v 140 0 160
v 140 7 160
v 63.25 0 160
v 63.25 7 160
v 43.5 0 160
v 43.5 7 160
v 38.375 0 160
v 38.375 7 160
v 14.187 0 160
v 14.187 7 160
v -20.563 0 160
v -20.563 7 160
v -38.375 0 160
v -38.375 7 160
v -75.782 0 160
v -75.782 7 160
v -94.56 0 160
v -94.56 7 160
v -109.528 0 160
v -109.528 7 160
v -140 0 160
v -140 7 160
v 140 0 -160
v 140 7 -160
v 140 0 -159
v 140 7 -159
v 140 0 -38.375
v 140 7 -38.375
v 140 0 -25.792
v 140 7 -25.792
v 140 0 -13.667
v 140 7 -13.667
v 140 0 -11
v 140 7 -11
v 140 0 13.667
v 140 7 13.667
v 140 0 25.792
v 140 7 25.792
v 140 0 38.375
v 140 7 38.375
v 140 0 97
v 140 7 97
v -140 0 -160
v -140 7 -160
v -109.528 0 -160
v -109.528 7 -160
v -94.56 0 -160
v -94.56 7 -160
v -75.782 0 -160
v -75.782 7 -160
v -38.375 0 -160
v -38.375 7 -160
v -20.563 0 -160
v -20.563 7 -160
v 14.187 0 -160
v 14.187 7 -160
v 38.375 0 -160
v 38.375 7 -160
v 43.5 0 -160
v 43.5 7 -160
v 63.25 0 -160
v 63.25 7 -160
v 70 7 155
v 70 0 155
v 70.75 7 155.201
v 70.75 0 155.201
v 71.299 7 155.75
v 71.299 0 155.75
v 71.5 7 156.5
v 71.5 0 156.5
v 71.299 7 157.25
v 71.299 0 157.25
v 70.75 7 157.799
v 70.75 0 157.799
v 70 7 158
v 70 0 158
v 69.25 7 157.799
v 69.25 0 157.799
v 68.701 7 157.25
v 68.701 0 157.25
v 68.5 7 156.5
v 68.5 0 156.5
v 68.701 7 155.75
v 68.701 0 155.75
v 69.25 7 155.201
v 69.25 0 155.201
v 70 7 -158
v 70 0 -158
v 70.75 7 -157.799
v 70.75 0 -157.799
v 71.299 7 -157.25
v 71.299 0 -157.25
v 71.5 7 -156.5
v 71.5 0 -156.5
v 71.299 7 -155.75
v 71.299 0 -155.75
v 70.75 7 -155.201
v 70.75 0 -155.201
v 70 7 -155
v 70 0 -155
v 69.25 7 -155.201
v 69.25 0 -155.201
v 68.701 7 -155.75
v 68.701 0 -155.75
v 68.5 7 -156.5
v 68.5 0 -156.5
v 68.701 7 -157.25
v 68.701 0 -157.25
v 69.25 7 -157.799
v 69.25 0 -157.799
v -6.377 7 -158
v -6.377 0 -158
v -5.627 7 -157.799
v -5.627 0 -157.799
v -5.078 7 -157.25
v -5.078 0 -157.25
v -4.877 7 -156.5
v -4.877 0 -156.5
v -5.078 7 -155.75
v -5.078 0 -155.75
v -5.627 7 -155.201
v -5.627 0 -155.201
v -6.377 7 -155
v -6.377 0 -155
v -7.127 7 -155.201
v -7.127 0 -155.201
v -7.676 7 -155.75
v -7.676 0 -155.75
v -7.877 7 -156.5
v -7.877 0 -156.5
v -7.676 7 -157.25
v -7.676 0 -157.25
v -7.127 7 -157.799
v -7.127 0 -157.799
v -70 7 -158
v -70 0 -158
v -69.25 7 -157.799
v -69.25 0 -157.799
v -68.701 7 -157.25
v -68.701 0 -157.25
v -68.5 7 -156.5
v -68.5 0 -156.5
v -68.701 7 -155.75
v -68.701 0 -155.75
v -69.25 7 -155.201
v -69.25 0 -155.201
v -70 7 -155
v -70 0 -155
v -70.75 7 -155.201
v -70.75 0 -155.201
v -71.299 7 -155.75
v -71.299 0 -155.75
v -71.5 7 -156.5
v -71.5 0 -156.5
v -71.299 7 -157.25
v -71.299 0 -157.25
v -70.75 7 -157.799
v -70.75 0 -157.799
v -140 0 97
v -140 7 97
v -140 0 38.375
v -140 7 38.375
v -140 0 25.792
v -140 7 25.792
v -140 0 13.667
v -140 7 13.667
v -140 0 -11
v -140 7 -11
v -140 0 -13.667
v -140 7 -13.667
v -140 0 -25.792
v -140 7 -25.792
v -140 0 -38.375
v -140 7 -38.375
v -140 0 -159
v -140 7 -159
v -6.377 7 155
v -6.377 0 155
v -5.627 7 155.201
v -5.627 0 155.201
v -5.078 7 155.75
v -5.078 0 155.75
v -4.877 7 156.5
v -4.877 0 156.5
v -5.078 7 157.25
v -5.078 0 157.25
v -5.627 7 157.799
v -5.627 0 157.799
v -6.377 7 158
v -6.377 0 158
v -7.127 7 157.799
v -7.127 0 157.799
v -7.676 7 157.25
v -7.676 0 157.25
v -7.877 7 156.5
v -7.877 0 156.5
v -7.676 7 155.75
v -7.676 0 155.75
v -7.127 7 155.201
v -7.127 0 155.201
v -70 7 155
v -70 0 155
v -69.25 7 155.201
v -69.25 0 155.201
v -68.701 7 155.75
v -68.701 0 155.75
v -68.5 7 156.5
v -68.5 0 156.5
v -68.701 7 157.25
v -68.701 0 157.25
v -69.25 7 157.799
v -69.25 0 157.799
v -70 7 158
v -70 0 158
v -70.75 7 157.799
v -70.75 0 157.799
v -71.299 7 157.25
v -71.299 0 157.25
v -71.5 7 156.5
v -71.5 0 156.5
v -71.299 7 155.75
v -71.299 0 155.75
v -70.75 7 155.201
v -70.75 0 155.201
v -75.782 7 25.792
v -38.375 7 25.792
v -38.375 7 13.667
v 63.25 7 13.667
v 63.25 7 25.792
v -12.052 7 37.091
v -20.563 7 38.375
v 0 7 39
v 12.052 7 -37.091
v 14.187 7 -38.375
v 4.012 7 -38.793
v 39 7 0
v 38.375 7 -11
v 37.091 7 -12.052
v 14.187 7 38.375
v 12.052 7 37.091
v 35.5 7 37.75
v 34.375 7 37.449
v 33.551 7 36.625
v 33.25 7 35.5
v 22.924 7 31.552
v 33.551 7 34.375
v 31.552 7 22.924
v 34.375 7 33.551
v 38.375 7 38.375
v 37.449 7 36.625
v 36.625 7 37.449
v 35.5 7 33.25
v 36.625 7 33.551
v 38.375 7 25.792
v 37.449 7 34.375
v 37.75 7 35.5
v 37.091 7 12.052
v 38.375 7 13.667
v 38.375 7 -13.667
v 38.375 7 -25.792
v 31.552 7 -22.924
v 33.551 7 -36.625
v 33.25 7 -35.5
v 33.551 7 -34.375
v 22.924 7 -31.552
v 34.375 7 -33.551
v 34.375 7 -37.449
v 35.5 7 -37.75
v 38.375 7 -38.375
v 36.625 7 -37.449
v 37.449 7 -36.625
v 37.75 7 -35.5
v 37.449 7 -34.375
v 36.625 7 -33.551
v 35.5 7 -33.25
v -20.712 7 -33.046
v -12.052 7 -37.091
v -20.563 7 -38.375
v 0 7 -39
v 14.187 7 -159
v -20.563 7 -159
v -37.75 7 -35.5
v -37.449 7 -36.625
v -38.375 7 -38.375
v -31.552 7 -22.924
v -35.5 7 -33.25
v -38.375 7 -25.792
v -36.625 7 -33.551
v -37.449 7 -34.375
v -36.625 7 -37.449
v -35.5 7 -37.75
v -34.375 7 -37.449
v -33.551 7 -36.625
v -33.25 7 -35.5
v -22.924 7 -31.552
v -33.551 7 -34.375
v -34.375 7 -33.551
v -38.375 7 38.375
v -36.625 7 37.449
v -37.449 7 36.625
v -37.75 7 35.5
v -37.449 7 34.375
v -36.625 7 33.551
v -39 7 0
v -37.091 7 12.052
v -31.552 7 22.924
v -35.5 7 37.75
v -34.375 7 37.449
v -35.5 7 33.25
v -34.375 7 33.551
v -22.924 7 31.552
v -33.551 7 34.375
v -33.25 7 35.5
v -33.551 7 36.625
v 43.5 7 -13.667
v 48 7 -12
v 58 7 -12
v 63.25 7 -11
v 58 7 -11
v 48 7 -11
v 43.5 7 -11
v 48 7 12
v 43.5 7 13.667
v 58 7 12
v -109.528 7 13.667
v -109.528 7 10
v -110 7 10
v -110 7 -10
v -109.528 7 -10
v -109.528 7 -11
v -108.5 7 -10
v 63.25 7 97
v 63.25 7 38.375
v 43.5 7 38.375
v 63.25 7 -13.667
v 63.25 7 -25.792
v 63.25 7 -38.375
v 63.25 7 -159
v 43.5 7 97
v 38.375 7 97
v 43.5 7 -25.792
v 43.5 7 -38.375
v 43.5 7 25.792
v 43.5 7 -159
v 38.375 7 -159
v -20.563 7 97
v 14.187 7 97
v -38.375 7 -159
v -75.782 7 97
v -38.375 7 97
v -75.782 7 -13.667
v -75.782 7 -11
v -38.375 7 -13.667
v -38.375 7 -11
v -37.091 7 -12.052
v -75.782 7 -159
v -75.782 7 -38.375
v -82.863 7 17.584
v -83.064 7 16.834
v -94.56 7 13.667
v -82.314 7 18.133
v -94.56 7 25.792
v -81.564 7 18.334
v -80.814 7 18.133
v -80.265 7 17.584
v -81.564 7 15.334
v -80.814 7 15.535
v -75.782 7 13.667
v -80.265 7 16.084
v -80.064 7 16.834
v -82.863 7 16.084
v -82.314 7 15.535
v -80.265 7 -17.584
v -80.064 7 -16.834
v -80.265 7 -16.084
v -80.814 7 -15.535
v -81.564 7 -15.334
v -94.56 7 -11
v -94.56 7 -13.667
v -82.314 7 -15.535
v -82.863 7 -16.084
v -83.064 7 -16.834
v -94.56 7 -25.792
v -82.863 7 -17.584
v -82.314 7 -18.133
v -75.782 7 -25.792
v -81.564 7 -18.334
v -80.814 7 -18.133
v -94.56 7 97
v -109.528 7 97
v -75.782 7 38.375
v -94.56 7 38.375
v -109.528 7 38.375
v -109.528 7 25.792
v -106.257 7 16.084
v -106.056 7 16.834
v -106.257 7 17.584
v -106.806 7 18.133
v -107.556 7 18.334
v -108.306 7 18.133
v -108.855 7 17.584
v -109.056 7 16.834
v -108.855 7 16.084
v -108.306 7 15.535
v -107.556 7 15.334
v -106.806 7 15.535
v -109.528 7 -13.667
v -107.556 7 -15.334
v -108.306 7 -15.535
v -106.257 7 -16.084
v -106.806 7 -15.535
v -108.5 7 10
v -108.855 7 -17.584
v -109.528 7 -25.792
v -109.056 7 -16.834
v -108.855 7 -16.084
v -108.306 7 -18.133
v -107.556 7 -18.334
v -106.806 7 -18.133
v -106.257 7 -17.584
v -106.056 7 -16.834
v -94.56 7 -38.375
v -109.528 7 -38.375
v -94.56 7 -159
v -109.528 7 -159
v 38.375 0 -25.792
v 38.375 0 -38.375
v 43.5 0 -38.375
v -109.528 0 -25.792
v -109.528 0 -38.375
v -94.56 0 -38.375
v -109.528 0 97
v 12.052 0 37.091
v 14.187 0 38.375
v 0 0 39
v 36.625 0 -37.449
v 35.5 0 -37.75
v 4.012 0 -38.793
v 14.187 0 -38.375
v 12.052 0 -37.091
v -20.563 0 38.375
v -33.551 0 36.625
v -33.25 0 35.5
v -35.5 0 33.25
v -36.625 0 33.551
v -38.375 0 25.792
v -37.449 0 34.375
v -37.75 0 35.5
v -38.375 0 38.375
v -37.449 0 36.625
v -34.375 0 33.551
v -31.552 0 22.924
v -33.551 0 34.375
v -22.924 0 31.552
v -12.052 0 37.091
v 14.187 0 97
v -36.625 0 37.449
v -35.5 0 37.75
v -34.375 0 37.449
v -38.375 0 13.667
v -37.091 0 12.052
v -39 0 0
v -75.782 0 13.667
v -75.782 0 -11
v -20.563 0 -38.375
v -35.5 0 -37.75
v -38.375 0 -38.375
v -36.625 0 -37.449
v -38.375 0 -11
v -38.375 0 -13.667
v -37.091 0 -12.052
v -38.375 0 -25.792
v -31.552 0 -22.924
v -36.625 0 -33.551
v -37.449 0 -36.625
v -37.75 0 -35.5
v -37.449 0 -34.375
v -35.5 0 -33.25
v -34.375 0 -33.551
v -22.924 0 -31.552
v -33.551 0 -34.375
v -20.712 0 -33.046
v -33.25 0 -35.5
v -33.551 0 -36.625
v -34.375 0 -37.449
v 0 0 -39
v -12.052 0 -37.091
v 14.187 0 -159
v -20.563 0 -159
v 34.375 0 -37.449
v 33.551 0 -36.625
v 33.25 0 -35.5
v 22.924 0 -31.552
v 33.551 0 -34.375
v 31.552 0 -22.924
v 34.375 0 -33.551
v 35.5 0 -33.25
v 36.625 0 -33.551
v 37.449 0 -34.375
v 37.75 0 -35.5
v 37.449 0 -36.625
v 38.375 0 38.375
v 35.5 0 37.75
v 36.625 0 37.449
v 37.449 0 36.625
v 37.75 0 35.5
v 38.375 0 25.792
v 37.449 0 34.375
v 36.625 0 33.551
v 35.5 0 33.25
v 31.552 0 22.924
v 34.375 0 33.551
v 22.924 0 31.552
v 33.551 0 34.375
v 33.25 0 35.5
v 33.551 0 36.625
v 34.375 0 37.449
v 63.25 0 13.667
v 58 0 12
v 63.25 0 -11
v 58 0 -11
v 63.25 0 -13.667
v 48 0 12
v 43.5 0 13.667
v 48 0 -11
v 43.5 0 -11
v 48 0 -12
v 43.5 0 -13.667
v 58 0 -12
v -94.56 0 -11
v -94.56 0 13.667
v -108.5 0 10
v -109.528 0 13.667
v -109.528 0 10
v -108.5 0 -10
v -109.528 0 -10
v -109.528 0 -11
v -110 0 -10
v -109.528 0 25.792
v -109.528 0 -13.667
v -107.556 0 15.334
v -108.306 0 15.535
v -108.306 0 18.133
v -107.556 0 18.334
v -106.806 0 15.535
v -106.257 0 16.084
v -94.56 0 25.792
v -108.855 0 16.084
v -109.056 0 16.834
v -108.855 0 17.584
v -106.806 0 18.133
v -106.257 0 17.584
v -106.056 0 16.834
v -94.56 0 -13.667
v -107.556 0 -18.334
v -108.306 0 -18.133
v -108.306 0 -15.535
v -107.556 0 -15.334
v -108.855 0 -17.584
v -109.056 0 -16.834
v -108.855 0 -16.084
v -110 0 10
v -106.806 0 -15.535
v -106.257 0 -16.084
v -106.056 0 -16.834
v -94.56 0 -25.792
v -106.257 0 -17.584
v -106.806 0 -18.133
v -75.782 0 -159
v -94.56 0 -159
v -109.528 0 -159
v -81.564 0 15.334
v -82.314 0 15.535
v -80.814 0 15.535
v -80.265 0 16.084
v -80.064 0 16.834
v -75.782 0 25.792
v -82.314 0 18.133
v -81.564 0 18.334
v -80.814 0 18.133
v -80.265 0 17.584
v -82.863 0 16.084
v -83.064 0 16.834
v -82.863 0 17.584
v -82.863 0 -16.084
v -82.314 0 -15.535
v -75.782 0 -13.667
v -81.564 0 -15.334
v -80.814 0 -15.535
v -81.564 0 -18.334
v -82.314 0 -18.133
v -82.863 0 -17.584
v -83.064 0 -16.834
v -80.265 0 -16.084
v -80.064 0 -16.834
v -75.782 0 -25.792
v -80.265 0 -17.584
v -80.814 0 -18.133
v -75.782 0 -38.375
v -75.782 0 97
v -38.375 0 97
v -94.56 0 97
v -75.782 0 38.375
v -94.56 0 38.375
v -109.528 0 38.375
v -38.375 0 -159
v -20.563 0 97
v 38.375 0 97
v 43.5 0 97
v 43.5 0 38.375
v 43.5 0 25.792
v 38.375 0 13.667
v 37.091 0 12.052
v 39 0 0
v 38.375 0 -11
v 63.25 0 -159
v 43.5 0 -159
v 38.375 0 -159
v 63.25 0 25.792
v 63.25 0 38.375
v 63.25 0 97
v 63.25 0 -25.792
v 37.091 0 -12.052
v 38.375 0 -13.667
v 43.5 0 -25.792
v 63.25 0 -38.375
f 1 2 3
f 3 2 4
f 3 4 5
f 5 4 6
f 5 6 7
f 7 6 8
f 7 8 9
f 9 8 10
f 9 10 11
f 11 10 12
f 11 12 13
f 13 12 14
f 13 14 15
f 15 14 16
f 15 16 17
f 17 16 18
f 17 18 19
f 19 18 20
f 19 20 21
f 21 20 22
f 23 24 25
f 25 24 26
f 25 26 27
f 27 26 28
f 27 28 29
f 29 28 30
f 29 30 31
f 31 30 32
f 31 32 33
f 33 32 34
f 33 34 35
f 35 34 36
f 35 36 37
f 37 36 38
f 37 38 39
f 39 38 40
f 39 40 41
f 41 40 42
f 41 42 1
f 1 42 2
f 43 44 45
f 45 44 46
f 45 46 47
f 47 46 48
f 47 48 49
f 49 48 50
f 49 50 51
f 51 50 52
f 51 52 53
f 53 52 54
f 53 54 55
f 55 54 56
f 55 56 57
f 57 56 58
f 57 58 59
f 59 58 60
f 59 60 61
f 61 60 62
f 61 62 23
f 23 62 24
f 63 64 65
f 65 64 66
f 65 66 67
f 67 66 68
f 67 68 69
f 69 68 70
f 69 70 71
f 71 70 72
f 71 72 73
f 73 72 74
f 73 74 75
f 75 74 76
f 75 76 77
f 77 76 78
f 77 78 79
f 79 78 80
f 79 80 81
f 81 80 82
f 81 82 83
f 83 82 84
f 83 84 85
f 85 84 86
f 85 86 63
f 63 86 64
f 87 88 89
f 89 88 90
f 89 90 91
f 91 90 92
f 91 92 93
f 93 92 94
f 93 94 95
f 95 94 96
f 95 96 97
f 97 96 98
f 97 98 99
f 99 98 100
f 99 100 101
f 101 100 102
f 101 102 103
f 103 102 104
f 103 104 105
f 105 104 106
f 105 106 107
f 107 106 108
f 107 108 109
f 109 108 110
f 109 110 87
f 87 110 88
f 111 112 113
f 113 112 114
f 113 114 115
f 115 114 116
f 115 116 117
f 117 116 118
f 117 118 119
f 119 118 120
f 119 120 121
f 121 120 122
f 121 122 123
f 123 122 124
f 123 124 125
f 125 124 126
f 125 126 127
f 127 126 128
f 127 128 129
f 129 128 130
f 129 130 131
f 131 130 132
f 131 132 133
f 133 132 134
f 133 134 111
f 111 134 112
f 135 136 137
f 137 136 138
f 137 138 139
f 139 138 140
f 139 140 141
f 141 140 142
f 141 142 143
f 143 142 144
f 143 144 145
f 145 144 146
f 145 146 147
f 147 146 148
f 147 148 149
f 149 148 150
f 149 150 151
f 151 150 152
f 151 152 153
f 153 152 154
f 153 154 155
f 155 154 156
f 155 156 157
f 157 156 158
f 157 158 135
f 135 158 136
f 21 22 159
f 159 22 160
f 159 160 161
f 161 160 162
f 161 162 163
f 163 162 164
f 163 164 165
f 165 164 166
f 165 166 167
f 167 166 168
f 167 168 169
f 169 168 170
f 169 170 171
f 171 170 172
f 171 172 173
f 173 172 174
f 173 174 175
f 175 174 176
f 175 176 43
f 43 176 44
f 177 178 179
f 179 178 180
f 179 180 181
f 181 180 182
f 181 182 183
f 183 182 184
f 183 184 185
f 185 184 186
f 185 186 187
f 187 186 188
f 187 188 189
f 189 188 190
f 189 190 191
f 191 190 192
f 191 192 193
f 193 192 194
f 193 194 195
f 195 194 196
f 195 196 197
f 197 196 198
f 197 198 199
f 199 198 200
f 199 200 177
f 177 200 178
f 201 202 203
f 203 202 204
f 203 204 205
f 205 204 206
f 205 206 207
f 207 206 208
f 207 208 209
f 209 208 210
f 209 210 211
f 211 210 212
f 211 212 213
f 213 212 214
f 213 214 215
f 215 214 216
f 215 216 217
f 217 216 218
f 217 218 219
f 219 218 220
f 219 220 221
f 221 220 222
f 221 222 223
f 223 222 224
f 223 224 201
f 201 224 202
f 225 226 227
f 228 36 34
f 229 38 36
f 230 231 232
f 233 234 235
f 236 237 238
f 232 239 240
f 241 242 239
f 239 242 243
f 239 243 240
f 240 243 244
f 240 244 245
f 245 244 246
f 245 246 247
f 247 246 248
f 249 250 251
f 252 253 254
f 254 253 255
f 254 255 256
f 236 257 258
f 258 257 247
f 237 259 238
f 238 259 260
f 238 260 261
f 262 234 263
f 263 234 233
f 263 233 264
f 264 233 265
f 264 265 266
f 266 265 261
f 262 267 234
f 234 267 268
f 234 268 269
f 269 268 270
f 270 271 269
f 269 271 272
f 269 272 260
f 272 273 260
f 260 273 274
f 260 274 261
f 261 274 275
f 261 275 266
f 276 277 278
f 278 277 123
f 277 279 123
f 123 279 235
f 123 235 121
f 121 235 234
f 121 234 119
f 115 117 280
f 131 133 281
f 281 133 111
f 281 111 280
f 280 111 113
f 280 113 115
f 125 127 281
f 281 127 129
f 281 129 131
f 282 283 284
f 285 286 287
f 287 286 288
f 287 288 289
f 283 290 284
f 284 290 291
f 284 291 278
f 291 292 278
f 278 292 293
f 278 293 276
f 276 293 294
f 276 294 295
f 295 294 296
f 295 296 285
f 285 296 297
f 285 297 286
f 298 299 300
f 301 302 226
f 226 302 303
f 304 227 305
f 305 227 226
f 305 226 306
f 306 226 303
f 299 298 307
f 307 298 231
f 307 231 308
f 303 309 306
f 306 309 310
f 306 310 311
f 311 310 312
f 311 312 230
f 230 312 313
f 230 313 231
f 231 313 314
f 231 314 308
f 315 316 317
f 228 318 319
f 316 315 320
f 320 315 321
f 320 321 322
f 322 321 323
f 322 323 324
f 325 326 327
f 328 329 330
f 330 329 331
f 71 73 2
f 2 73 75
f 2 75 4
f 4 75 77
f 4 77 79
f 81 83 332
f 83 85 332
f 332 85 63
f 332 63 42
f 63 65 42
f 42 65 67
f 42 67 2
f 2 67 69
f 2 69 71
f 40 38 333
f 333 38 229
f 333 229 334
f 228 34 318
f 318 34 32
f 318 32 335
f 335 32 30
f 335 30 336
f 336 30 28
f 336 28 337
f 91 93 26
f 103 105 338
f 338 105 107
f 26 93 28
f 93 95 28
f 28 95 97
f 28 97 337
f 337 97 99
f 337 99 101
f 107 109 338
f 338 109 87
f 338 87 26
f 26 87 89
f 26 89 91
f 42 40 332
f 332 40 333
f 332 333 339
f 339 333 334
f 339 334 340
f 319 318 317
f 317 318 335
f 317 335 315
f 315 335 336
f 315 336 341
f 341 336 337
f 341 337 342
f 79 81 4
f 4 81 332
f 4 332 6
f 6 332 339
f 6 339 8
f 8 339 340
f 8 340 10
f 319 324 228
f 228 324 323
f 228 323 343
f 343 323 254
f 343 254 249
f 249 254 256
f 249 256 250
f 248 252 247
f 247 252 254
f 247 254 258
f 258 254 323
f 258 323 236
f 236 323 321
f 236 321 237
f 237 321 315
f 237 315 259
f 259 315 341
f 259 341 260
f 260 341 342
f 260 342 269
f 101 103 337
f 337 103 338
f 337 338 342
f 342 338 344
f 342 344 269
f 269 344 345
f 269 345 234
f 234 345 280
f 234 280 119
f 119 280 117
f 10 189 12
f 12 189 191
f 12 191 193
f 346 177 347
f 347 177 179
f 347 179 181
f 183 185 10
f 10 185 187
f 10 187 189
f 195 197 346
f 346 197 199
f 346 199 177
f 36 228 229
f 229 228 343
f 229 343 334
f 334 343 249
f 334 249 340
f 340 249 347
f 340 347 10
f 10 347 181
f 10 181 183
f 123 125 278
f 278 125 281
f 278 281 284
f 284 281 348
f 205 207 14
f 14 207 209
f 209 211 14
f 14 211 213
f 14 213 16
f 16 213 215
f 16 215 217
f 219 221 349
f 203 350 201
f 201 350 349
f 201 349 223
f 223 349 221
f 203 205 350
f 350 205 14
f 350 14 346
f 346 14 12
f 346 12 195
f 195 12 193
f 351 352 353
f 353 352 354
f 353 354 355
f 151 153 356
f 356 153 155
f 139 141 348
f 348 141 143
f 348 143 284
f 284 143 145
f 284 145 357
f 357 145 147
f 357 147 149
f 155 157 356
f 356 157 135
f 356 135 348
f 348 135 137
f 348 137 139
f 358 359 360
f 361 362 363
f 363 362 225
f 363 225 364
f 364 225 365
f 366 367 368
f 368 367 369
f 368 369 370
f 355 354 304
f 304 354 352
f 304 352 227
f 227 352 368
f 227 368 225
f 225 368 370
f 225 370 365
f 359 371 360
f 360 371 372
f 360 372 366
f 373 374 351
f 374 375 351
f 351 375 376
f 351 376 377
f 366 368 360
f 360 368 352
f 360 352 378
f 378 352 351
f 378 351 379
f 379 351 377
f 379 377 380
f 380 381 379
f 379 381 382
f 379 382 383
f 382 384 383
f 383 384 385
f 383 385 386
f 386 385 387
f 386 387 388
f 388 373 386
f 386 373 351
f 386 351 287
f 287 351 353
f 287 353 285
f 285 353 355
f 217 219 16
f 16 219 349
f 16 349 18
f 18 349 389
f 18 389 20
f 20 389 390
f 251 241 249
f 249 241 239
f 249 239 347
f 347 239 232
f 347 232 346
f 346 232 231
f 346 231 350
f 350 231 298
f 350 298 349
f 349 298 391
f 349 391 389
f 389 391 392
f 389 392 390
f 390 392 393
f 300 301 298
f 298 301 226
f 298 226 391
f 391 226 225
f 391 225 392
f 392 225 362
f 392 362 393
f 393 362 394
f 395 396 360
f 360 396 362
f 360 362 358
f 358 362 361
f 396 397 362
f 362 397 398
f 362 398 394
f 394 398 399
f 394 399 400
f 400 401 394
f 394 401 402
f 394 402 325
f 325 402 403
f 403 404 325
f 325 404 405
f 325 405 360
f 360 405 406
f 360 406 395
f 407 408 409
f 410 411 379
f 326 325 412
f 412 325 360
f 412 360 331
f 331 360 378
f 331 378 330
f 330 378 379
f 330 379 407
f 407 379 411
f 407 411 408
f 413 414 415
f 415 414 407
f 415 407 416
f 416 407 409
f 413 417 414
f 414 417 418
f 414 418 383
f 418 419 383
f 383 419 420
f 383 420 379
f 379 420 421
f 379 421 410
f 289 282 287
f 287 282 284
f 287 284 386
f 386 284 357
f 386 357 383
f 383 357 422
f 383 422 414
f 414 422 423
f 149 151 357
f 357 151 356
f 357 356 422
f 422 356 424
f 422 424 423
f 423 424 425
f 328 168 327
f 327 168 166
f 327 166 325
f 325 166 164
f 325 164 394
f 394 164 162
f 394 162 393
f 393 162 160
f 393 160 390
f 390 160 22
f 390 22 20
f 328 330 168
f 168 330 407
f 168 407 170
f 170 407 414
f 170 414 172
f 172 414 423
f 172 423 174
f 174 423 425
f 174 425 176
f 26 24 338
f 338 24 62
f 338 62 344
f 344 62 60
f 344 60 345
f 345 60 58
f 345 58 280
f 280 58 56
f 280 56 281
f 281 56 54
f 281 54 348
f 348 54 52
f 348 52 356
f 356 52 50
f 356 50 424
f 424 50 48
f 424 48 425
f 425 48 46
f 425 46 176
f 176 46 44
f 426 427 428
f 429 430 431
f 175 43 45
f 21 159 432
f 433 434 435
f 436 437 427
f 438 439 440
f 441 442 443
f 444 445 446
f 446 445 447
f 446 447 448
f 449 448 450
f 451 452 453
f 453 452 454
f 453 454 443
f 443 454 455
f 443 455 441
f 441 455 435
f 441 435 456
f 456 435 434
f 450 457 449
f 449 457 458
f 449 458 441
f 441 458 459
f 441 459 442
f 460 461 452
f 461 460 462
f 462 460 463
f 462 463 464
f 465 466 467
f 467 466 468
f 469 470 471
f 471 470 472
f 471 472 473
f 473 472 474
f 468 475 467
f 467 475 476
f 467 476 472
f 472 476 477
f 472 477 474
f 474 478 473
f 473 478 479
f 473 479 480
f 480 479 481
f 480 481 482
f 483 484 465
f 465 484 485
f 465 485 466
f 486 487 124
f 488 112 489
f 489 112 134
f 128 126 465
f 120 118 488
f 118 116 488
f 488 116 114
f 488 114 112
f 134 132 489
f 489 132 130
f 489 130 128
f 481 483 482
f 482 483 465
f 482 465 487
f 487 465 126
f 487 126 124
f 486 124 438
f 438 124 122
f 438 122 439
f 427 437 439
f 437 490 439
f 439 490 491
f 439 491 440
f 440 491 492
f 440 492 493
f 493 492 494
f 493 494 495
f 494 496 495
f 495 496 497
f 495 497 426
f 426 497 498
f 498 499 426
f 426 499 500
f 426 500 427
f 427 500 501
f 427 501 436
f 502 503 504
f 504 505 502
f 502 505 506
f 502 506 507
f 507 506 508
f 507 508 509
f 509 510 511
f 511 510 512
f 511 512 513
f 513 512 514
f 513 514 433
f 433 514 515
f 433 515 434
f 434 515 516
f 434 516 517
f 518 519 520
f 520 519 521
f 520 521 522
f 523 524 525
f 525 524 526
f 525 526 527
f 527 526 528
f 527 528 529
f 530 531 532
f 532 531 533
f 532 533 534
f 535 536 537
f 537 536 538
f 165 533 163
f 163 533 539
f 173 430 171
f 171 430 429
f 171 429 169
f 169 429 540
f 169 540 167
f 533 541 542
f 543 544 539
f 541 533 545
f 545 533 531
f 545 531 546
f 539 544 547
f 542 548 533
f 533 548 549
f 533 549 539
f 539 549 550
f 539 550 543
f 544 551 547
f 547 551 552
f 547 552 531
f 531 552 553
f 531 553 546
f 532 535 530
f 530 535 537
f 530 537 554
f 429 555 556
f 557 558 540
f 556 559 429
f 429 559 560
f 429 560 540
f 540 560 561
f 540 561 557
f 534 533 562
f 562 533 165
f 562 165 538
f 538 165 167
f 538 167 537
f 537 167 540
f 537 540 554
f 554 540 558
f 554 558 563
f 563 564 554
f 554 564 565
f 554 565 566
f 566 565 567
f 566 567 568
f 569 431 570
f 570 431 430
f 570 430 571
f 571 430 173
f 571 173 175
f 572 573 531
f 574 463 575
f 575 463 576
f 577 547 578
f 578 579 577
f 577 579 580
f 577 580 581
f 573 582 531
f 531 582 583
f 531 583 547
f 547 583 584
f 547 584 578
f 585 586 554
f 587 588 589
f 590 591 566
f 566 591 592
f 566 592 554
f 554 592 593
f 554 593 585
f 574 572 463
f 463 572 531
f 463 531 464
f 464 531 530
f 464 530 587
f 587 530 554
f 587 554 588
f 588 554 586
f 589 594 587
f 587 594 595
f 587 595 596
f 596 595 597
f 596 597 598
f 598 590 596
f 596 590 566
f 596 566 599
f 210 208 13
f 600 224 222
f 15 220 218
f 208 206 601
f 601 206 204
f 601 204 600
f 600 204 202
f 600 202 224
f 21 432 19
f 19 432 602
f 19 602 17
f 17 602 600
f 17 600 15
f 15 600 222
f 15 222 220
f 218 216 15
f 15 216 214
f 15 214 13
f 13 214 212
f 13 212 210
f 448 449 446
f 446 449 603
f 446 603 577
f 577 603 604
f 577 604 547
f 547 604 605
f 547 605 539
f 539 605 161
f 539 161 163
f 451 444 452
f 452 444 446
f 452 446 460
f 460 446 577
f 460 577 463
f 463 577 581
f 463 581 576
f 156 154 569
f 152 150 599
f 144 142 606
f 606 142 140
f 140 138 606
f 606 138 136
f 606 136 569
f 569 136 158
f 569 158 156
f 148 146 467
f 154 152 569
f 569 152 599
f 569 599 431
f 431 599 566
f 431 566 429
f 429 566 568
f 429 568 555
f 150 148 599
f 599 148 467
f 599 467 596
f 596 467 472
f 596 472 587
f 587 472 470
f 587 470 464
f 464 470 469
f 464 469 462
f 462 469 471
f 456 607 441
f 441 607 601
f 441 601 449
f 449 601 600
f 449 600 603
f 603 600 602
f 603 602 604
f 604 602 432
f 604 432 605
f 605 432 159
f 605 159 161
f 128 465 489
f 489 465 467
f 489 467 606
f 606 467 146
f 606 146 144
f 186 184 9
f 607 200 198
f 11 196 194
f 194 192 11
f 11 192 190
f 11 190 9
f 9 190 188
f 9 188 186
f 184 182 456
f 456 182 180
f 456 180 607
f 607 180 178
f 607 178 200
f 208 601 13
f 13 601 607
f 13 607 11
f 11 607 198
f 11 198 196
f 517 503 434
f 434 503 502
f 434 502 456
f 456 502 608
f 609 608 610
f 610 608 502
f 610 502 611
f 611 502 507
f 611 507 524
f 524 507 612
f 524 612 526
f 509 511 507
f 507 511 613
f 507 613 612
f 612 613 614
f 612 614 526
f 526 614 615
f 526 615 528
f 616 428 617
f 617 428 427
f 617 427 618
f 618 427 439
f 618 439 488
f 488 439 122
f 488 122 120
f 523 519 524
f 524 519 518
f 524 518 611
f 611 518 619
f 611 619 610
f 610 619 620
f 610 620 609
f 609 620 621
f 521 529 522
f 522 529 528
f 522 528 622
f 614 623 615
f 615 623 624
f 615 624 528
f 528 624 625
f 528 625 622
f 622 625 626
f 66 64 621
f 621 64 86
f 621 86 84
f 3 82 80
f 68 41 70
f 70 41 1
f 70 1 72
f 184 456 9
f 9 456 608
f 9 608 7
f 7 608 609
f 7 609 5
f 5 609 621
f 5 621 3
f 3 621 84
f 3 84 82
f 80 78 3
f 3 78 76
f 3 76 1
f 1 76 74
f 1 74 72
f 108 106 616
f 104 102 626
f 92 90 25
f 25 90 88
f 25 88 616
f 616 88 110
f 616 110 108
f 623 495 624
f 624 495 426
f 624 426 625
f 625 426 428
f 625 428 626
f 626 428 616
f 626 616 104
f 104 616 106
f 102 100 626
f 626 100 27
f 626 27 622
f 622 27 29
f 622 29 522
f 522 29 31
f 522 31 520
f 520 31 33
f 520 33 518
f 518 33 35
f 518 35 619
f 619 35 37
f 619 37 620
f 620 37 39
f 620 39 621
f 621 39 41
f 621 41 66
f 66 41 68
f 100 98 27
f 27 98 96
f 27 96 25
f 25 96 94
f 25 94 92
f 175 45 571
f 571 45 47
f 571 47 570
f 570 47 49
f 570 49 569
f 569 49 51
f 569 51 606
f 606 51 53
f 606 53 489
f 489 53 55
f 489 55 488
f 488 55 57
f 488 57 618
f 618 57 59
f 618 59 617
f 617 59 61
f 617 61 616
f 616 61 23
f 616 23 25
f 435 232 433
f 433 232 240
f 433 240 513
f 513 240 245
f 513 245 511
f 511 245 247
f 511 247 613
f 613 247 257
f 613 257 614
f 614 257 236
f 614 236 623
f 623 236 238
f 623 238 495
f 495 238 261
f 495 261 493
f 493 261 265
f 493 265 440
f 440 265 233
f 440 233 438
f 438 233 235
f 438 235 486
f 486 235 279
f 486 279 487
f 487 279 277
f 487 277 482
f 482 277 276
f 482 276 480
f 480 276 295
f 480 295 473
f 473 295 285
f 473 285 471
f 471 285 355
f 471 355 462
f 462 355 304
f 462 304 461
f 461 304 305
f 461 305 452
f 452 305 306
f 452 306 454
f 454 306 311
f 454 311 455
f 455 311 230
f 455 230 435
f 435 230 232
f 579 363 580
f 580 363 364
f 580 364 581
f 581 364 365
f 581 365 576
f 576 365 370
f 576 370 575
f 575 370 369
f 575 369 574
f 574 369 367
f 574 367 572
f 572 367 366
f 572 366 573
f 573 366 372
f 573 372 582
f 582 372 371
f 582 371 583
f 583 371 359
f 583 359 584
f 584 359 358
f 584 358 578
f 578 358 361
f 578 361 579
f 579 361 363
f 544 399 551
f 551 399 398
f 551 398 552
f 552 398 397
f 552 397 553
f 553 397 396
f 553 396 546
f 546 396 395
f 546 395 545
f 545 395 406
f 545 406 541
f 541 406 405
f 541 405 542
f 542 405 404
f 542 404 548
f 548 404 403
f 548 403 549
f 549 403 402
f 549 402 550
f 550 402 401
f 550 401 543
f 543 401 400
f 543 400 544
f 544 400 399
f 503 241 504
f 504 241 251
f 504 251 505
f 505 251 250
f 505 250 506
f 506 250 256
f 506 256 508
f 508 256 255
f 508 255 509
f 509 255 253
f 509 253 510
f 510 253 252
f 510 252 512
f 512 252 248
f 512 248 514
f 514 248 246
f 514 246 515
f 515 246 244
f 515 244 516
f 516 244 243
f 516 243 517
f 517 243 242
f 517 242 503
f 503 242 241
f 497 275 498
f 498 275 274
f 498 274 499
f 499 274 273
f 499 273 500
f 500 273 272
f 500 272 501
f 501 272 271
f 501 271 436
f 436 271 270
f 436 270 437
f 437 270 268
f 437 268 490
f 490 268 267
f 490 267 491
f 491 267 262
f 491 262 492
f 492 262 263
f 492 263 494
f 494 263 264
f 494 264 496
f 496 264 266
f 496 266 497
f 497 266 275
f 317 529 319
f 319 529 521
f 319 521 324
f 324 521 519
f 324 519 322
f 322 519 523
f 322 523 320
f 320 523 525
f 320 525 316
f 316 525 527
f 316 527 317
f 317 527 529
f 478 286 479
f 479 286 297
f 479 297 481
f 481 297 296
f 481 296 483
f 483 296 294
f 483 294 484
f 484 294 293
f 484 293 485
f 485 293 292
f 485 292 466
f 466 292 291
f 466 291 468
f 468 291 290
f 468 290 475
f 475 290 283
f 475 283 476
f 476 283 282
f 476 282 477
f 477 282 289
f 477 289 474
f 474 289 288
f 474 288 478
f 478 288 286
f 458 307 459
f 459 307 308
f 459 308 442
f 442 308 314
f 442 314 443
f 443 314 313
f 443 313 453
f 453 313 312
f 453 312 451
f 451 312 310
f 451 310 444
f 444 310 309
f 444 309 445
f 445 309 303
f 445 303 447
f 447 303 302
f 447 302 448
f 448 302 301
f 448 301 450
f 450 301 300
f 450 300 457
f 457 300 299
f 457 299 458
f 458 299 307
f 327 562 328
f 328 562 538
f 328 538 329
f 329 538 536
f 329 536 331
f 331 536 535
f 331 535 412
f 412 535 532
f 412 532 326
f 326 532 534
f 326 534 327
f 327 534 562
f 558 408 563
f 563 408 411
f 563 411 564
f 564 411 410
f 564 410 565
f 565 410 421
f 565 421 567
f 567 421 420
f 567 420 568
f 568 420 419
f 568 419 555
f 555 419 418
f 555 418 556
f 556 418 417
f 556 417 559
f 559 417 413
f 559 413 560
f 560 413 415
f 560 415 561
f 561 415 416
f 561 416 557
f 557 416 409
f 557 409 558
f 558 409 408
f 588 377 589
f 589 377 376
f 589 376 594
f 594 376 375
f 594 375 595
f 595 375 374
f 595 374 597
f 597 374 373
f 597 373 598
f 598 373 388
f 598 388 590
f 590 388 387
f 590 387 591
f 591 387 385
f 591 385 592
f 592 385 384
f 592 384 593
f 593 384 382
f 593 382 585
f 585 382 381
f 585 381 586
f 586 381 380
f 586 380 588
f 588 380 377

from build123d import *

# Parameters (mm, degrees)
SKETCH1_W           = 280
SKETCH1_H           = 320
SKETCH1_R           = 1.5
BOSS_EXTRUDE1_DEPTH = 7
SKETCH2_R           = 39
SKETCH2_R_2         = 2.25
SKETCH2_R_3         = 1.5
SKETCH2_W           = 10
SKETCH2_H           = 24
SKETCH2_W_2         = 1.5
SKETCH2_H_2         = 20
CUT_EXTRUDE1_DEPTH  = 10


with BuildPart() as part:
    # Sketch1 → Boss-Extrude1 (new body)
    with BuildSketch(Plane(origin=(0, 0, 0), x_dir=(1, 0, 0), z_dir=(0, 1, 0))):
        Rectangle(SKETCH1_W, SKETCH1_H)
        with Locations(Location((-6.376642336, -156.5, 0), (0, 0, 270))):
            Circle(SKETCH1_R, mode=Mode.SUBTRACT)
        with Locations(Location((-70, 156.5, 0), (0, 0, 270))):
            Circle(SKETCH1_R, mode=Mode.SUBTRACT)
        with Locations(Location((-6.376642336, 156.5, 0), (0, 0, 270))):
            Circle(SKETCH1_R, mode=Mode.SUBTRACT)
        with Locations(Location((70, 156.5, 0), (0, 0, 270))):
            Circle(SKETCH1_R, mode=Mode.SUBTRACT)
        with Locations(Location((70, -156.5, 0), (0, 0, 270))):
            Circle(SKETCH1_R, mode=Mode.SUBTRACT)
        with Locations(Location((-70, -156.5, 0), (0, 0, 270))):
            Circle(SKETCH1_R, mode=Mode.SUBTRACT)
    extrude(amount=BOSS_EXTRUDE1_DEPTH)

    # Sketch2 → Cut-Extrude1 (cut)
    with BuildSketch(Plane(origin=(0, 7, 0), x_dir=(1, 0, 0), z_dir=(0, 1, 0))):
        with Locations(Location((0, 0, 0), (0, 0, 270))):
            Circle(SKETCH2_R)
        with Locations(Location((-35.5, 35.5, 0), (0, 0, 270))):
            Circle(SKETCH2_R_2)
        with Locations(Location((35.5, 35.5, 0), (0, 0, 270))):
            Circle(SKETCH2_R_2)
        with Locations(Location((35.5, -35.5, 0), (0, 0, 270))):
            Circle(SKETCH2_R_2)
        with Locations(Location((-35.5, -35.5, 0), (0, 0, 270))):
            Circle(SKETCH2_R_2)
        with Locations(Location((-107.555652062, 16.833746195, 0), (0, 0, 270))):
            Circle(SKETCH2_R_3)
        with Locations(Location((-81.564347938, 16.833746195, 0), (0, 0, 270))):
            Circle(SKETCH2_R_3)
        with Locations(Location((-107.555652062, -16.833746195, 0), (0, 0, 270))):
            Circle(SKETCH2_R_3)
        with Locations(Location((-81.564347938, -16.833746195, 0), (0, 0, 270))):
            Circle(SKETCH2_R_3)
        with Locations((53, 0)):
            Rectangle(SKETCH2_W, SKETCH2_H)
        with Locations((-109.25, 0)):
            Rectangle(SKETCH2_W_2, SKETCH2_H_2)
    extrude(amount=-CUT_EXTRUDE1_DEPTH, mode=Mode.SUBTRACT)


solid = part.part
